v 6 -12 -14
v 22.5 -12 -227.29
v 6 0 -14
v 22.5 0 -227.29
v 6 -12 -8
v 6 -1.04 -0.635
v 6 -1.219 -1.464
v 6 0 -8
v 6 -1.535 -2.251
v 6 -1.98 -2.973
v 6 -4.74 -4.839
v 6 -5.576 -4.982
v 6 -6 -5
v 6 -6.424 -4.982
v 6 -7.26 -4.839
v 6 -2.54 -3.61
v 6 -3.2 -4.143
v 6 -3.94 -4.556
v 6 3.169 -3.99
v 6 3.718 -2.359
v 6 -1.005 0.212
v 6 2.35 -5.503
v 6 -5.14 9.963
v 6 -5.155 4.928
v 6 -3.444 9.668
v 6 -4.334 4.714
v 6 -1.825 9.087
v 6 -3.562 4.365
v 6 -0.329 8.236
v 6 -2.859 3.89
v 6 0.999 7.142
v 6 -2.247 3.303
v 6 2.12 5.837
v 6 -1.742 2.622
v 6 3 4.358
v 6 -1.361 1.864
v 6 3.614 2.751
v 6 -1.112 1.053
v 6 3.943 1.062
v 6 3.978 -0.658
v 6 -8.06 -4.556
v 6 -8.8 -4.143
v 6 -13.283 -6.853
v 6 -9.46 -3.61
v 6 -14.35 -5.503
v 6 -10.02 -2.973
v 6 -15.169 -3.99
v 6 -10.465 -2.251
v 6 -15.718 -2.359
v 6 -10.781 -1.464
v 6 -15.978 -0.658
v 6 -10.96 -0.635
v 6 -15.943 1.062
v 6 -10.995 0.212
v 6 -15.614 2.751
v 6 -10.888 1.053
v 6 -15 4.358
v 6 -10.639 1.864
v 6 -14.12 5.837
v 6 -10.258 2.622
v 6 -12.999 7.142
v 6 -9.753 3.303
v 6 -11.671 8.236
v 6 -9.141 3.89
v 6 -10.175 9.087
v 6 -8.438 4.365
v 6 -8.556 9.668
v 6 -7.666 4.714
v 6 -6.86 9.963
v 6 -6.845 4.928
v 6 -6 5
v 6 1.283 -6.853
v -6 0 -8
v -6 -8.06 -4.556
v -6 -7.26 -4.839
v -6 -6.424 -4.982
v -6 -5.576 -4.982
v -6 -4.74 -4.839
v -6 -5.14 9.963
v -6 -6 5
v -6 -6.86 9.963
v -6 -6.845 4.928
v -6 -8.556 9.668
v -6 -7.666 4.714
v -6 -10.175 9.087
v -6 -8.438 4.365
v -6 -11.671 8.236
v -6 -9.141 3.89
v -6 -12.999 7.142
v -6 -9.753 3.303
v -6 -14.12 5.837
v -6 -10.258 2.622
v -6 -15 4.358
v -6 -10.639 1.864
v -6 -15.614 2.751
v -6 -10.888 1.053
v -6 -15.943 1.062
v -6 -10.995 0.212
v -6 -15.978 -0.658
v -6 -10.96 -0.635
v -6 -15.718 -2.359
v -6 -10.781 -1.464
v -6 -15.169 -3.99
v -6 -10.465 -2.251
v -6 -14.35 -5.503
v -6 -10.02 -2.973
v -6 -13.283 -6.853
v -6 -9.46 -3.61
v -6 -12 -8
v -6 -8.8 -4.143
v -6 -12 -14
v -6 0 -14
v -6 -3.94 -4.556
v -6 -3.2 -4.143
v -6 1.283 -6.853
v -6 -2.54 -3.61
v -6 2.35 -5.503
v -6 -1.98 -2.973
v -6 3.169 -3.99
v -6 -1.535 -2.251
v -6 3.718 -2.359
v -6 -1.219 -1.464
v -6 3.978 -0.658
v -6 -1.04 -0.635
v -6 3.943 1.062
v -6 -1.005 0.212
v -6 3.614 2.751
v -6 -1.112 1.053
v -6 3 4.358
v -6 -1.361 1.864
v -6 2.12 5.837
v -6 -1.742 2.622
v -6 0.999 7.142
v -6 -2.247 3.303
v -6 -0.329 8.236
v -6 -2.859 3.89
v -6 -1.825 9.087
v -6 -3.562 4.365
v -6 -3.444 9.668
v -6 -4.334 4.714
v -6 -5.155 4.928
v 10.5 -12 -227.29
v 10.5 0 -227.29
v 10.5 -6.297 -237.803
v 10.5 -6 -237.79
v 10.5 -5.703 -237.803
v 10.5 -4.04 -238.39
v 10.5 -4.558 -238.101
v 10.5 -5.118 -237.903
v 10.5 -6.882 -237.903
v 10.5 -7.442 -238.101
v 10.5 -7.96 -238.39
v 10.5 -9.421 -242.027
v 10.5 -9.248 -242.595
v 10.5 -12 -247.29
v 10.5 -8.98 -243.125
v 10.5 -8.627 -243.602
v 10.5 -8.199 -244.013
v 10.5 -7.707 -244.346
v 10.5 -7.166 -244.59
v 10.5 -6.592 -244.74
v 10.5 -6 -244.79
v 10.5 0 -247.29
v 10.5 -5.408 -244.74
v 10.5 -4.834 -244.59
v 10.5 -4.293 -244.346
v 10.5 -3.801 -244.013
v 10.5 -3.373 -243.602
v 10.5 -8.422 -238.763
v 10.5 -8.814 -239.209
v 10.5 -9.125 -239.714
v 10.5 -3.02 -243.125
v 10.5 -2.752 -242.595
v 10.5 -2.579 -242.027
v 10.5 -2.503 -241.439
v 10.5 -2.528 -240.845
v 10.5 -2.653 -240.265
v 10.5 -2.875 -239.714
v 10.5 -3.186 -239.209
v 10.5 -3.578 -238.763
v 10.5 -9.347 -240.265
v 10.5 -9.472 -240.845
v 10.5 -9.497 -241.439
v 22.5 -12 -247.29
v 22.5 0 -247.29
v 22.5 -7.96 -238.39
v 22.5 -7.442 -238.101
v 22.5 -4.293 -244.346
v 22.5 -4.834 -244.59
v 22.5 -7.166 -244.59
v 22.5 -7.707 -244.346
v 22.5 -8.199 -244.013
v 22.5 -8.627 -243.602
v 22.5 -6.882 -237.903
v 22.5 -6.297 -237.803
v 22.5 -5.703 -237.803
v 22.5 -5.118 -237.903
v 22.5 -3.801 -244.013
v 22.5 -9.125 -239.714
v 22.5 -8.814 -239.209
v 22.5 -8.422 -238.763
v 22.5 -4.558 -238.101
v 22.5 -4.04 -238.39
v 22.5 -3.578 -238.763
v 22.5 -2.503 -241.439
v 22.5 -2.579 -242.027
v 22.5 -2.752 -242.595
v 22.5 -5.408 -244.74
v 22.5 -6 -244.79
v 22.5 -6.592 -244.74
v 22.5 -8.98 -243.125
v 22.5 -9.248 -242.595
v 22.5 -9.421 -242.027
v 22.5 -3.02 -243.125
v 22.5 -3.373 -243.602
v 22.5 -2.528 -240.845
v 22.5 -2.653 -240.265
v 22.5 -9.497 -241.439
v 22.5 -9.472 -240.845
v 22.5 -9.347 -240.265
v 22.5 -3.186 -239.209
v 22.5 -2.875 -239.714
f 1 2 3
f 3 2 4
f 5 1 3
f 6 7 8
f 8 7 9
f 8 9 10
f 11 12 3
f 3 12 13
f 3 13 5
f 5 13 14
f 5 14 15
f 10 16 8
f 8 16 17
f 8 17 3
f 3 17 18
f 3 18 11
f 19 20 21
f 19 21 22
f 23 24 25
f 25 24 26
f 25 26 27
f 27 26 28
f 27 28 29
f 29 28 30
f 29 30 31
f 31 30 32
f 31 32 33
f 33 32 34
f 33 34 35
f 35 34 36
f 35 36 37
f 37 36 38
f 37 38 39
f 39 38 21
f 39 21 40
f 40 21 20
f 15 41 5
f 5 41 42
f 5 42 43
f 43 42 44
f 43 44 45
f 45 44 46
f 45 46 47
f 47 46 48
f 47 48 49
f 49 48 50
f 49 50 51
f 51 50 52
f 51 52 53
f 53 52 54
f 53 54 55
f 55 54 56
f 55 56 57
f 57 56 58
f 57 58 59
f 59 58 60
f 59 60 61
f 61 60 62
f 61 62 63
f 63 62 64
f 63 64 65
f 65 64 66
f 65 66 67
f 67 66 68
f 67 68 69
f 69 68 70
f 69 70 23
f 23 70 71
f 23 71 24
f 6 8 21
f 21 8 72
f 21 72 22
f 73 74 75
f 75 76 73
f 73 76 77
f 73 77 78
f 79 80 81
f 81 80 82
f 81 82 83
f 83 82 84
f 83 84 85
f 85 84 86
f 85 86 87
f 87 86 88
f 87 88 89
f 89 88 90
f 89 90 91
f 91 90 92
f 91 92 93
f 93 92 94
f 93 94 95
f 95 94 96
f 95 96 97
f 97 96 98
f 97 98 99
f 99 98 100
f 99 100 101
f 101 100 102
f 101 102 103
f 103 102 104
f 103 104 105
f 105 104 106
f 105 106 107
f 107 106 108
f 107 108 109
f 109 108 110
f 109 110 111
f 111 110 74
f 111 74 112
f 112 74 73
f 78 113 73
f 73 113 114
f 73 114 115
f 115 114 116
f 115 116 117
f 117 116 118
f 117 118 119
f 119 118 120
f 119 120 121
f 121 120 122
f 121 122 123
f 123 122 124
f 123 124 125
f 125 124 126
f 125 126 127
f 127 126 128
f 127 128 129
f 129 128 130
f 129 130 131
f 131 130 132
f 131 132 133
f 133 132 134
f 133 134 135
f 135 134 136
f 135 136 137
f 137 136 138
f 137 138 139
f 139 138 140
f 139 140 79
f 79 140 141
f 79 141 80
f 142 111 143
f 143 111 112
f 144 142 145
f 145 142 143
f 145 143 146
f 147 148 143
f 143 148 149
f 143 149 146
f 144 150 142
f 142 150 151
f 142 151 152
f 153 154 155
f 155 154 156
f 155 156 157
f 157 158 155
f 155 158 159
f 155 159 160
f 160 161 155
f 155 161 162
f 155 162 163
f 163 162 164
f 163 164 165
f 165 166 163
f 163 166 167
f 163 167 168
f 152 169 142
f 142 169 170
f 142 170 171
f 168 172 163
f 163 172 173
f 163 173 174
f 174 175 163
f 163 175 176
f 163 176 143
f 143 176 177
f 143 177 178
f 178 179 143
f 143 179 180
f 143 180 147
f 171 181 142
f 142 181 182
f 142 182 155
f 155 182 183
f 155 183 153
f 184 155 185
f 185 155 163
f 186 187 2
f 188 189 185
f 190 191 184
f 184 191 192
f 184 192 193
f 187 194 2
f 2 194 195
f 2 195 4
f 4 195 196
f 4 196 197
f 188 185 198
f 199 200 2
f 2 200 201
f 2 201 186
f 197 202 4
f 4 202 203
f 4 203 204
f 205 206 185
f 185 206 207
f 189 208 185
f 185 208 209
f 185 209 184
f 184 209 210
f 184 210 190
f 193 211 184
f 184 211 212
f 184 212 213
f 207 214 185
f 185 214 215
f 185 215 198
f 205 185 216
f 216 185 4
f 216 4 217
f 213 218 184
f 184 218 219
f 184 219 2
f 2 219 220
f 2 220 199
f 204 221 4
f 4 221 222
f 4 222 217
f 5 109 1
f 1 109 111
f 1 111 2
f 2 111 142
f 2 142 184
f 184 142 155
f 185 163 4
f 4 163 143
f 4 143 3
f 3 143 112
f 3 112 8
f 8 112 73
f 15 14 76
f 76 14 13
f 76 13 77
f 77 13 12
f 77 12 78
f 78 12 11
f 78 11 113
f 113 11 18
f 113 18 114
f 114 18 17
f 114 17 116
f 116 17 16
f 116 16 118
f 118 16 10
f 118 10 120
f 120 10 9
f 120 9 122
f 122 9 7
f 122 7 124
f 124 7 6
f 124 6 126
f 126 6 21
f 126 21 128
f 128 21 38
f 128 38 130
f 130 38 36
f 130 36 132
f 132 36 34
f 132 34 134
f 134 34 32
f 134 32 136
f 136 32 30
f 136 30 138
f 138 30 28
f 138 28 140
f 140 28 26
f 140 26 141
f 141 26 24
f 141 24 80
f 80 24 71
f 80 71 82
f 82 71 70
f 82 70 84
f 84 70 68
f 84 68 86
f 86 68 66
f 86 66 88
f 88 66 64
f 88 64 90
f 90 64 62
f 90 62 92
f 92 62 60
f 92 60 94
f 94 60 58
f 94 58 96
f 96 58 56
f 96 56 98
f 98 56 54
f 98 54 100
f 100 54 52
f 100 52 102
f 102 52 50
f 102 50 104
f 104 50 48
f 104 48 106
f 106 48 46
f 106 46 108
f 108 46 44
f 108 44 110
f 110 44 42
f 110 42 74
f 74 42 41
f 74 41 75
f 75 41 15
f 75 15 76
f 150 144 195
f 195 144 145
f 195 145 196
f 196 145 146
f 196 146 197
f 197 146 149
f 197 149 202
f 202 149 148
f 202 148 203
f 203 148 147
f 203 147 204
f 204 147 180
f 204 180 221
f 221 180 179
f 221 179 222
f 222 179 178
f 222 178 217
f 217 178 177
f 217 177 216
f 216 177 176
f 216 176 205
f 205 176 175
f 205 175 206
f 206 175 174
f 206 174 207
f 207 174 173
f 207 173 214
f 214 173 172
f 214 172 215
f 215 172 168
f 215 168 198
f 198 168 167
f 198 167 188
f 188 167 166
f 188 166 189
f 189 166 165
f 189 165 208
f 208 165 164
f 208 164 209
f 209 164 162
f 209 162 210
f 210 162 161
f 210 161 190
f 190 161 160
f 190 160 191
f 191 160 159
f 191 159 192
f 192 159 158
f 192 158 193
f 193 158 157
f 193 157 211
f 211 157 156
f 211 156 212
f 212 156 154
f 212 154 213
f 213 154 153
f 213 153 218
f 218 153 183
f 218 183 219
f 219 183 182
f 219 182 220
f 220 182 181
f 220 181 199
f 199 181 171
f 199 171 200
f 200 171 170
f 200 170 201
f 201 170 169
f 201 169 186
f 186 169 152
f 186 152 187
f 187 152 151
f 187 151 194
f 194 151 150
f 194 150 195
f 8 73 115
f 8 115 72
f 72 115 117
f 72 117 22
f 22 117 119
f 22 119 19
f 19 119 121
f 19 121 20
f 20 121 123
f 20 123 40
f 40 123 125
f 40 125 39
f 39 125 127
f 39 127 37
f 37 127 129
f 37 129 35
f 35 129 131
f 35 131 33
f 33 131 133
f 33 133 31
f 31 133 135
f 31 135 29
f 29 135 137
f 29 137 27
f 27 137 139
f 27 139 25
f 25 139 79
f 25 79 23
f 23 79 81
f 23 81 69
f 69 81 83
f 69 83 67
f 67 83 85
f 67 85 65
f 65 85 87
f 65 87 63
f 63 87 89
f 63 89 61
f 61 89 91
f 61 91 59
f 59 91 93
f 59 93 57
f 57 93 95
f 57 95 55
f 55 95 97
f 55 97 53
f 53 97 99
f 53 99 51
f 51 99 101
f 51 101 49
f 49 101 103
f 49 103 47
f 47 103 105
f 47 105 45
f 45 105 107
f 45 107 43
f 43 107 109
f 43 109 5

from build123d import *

# Parameters (mm, degrees)
BOSS_EXTRUDE1_DEPTH = 12
CUT_EXTRUDE3_REACH  = 251.216
SKETCH2_R           = 5
CUT_EXTRUDE4_REACH  = 251.216
SKETCH3_R           = 3.5
SKETCH4_R           = 10
SKETCH4_R_2         = 5
BOSS_EXTRUDE2_DEPTH = 12


with BuildPart() as part:
    # Sketch1 → Boss-Extrude1 (new body)
    with BuildSketch(Plane(origin=(0, 0, 0), x_dir=(1, 0, 0), z_dir=(0, 1, 0))):
        Polygon((10.5, 227.29), (22.5, 227.29), (6, 14), (-6, 14), align=None)
        Polygon((22.5, 227.29), (22.5, 241.29), (22.5, 247.29), (16.5, 247.29), (10.5, 247.29), (10.5, 227.29), align=None)
        Polygon((6, -6), (6, 14), (-6, 14), (-6, 0), (-6, -6), (0, -6), align=None)
    extrude(amount=-BOSS_EXTRUDE1_DEPTH)

    # Sketch2 → Cut-Extrude3 (cut, up to next)
    with BuildSketch(Plane.ZY.offset(6), mode=Mode.PRIVATE) as cut_extrude3_sk1:
        with Locations((0, -6)):
            Circle(SKETCH2_R)
    cut_extrude3_tool1 = extrude(cut_extrude3_sk1.sketch, amount=-CUT_EXTRUDE3_REACH, mode=Mode.PRIVATE) & part.part
    add(cut_extrude3_tool1.solids().sort_by_distance((-6, -6, 0))[0], mode=Mode.SUBTRACT)

    # Sketch3 → Cut-Extrude4 (cut, up to next)
    with BuildSketch(Plane(origin=(22.5, 0, 0), x_dir=(0, 0, -1), z_dir=(1, 0, 0)), mode=Mode.PRIVATE) as cut_extrude4_sk1:
        with Locations((241.29, -6)):
            Circle(SKETCH3_R)
    cut_extrude4_tool1 = extrude(cut_extrude4_sk1.sketch, amount=-CUT_EXTRUDE4_REACH, mode=Mode.PRIVATE) & part.part
    add(cut_extrude4_tool1.solids().sort_by_distance((22.5, -6, -241.29))[0], mode=Mode.SUBTRACT)

    # Sketch4 → Boss-Extrude2 (add)
    with BuildSketch(Plane.ZY.offset(6)):
        with Locations((0, -6)):
            Circle(SKETCH4_R)
        with Locations((0, -6)):
            Circle(SKETCH4_R_2, mode=Mode.SUBTRACT)
    extrude(amount=-BOSS_EXTRUDE2_DEPTH)


solid = part.part
